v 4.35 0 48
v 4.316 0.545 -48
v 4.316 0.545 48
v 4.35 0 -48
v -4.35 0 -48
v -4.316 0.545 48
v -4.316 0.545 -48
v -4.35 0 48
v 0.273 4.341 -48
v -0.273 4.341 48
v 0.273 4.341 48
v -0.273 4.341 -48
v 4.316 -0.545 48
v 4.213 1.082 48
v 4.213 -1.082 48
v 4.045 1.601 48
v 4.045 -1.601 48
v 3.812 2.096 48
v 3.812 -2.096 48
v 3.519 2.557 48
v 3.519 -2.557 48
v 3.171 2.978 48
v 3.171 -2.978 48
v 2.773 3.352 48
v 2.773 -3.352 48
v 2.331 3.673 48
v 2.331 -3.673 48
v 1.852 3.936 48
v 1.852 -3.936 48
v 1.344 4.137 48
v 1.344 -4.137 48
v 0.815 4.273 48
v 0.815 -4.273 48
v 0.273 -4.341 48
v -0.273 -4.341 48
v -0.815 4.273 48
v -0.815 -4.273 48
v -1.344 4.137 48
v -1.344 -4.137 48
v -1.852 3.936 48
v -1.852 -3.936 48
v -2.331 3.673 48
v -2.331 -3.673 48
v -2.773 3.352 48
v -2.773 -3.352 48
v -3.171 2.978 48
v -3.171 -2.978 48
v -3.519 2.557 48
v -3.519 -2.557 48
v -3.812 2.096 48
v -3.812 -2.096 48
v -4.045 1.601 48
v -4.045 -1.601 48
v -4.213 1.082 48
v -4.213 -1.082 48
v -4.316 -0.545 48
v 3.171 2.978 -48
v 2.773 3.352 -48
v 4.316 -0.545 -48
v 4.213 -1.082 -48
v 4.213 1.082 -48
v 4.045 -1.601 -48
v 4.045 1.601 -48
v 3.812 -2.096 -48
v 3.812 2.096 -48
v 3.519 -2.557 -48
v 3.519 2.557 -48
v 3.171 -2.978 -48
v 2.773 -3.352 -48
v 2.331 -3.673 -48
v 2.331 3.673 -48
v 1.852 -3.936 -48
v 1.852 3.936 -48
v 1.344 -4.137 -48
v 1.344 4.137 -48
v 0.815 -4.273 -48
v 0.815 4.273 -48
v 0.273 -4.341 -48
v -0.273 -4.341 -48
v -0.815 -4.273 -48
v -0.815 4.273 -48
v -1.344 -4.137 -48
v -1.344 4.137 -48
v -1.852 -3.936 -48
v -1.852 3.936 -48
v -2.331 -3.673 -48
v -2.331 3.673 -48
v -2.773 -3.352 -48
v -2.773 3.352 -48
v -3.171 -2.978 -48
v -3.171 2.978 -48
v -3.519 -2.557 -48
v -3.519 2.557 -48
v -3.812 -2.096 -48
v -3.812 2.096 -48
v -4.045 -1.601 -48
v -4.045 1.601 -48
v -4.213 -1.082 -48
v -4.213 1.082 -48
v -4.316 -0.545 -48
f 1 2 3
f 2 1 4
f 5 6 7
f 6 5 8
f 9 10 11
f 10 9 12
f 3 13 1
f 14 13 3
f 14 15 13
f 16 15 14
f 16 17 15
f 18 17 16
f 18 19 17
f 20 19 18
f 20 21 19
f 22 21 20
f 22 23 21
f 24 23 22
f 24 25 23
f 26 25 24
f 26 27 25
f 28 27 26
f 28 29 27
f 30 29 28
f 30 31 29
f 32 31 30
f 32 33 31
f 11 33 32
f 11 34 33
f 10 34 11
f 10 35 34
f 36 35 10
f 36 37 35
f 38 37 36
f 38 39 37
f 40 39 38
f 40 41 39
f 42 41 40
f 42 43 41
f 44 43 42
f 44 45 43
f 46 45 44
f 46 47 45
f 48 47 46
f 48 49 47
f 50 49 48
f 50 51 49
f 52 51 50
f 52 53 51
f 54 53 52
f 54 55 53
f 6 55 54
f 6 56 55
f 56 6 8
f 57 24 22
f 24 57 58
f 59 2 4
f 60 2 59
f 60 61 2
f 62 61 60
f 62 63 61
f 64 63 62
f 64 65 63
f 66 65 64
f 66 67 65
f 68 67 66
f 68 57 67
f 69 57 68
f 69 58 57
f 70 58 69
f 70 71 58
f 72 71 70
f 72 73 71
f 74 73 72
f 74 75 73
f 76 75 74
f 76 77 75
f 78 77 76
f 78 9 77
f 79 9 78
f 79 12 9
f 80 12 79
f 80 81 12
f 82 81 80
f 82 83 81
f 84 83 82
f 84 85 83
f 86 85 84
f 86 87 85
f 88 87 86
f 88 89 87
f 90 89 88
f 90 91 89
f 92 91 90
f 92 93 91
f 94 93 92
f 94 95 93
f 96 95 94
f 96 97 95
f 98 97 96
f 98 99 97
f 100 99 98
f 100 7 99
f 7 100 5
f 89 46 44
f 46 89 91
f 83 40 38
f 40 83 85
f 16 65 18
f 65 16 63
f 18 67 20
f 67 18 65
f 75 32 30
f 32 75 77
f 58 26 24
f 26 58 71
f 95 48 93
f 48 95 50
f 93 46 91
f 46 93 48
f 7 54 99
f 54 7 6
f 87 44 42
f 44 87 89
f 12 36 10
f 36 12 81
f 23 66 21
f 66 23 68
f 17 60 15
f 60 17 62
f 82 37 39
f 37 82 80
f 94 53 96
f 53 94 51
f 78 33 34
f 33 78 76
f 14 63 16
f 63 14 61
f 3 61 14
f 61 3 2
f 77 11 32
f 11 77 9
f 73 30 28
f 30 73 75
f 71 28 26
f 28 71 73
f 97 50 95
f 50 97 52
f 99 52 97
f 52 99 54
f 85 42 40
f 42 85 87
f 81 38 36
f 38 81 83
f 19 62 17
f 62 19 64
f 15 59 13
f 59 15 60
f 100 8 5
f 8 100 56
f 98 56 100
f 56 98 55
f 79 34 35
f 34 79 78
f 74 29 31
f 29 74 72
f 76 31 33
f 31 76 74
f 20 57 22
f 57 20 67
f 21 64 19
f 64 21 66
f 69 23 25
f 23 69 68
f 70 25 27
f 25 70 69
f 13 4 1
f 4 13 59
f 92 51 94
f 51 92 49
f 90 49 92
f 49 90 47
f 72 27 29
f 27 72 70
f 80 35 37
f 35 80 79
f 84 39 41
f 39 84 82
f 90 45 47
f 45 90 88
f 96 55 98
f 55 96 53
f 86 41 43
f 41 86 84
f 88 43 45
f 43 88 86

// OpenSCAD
$fn = 50;


difference() {
	union() {
		translate(v = [0, 0, -48.0000000000]) {
			cylinder(h = 96, r = 4.3500000000);
		}
	}
	union() {
		translate(v = [0, 0, -100.0000000000]) {
			cylinder(h = 200, r = 0);
		}
	}
}
